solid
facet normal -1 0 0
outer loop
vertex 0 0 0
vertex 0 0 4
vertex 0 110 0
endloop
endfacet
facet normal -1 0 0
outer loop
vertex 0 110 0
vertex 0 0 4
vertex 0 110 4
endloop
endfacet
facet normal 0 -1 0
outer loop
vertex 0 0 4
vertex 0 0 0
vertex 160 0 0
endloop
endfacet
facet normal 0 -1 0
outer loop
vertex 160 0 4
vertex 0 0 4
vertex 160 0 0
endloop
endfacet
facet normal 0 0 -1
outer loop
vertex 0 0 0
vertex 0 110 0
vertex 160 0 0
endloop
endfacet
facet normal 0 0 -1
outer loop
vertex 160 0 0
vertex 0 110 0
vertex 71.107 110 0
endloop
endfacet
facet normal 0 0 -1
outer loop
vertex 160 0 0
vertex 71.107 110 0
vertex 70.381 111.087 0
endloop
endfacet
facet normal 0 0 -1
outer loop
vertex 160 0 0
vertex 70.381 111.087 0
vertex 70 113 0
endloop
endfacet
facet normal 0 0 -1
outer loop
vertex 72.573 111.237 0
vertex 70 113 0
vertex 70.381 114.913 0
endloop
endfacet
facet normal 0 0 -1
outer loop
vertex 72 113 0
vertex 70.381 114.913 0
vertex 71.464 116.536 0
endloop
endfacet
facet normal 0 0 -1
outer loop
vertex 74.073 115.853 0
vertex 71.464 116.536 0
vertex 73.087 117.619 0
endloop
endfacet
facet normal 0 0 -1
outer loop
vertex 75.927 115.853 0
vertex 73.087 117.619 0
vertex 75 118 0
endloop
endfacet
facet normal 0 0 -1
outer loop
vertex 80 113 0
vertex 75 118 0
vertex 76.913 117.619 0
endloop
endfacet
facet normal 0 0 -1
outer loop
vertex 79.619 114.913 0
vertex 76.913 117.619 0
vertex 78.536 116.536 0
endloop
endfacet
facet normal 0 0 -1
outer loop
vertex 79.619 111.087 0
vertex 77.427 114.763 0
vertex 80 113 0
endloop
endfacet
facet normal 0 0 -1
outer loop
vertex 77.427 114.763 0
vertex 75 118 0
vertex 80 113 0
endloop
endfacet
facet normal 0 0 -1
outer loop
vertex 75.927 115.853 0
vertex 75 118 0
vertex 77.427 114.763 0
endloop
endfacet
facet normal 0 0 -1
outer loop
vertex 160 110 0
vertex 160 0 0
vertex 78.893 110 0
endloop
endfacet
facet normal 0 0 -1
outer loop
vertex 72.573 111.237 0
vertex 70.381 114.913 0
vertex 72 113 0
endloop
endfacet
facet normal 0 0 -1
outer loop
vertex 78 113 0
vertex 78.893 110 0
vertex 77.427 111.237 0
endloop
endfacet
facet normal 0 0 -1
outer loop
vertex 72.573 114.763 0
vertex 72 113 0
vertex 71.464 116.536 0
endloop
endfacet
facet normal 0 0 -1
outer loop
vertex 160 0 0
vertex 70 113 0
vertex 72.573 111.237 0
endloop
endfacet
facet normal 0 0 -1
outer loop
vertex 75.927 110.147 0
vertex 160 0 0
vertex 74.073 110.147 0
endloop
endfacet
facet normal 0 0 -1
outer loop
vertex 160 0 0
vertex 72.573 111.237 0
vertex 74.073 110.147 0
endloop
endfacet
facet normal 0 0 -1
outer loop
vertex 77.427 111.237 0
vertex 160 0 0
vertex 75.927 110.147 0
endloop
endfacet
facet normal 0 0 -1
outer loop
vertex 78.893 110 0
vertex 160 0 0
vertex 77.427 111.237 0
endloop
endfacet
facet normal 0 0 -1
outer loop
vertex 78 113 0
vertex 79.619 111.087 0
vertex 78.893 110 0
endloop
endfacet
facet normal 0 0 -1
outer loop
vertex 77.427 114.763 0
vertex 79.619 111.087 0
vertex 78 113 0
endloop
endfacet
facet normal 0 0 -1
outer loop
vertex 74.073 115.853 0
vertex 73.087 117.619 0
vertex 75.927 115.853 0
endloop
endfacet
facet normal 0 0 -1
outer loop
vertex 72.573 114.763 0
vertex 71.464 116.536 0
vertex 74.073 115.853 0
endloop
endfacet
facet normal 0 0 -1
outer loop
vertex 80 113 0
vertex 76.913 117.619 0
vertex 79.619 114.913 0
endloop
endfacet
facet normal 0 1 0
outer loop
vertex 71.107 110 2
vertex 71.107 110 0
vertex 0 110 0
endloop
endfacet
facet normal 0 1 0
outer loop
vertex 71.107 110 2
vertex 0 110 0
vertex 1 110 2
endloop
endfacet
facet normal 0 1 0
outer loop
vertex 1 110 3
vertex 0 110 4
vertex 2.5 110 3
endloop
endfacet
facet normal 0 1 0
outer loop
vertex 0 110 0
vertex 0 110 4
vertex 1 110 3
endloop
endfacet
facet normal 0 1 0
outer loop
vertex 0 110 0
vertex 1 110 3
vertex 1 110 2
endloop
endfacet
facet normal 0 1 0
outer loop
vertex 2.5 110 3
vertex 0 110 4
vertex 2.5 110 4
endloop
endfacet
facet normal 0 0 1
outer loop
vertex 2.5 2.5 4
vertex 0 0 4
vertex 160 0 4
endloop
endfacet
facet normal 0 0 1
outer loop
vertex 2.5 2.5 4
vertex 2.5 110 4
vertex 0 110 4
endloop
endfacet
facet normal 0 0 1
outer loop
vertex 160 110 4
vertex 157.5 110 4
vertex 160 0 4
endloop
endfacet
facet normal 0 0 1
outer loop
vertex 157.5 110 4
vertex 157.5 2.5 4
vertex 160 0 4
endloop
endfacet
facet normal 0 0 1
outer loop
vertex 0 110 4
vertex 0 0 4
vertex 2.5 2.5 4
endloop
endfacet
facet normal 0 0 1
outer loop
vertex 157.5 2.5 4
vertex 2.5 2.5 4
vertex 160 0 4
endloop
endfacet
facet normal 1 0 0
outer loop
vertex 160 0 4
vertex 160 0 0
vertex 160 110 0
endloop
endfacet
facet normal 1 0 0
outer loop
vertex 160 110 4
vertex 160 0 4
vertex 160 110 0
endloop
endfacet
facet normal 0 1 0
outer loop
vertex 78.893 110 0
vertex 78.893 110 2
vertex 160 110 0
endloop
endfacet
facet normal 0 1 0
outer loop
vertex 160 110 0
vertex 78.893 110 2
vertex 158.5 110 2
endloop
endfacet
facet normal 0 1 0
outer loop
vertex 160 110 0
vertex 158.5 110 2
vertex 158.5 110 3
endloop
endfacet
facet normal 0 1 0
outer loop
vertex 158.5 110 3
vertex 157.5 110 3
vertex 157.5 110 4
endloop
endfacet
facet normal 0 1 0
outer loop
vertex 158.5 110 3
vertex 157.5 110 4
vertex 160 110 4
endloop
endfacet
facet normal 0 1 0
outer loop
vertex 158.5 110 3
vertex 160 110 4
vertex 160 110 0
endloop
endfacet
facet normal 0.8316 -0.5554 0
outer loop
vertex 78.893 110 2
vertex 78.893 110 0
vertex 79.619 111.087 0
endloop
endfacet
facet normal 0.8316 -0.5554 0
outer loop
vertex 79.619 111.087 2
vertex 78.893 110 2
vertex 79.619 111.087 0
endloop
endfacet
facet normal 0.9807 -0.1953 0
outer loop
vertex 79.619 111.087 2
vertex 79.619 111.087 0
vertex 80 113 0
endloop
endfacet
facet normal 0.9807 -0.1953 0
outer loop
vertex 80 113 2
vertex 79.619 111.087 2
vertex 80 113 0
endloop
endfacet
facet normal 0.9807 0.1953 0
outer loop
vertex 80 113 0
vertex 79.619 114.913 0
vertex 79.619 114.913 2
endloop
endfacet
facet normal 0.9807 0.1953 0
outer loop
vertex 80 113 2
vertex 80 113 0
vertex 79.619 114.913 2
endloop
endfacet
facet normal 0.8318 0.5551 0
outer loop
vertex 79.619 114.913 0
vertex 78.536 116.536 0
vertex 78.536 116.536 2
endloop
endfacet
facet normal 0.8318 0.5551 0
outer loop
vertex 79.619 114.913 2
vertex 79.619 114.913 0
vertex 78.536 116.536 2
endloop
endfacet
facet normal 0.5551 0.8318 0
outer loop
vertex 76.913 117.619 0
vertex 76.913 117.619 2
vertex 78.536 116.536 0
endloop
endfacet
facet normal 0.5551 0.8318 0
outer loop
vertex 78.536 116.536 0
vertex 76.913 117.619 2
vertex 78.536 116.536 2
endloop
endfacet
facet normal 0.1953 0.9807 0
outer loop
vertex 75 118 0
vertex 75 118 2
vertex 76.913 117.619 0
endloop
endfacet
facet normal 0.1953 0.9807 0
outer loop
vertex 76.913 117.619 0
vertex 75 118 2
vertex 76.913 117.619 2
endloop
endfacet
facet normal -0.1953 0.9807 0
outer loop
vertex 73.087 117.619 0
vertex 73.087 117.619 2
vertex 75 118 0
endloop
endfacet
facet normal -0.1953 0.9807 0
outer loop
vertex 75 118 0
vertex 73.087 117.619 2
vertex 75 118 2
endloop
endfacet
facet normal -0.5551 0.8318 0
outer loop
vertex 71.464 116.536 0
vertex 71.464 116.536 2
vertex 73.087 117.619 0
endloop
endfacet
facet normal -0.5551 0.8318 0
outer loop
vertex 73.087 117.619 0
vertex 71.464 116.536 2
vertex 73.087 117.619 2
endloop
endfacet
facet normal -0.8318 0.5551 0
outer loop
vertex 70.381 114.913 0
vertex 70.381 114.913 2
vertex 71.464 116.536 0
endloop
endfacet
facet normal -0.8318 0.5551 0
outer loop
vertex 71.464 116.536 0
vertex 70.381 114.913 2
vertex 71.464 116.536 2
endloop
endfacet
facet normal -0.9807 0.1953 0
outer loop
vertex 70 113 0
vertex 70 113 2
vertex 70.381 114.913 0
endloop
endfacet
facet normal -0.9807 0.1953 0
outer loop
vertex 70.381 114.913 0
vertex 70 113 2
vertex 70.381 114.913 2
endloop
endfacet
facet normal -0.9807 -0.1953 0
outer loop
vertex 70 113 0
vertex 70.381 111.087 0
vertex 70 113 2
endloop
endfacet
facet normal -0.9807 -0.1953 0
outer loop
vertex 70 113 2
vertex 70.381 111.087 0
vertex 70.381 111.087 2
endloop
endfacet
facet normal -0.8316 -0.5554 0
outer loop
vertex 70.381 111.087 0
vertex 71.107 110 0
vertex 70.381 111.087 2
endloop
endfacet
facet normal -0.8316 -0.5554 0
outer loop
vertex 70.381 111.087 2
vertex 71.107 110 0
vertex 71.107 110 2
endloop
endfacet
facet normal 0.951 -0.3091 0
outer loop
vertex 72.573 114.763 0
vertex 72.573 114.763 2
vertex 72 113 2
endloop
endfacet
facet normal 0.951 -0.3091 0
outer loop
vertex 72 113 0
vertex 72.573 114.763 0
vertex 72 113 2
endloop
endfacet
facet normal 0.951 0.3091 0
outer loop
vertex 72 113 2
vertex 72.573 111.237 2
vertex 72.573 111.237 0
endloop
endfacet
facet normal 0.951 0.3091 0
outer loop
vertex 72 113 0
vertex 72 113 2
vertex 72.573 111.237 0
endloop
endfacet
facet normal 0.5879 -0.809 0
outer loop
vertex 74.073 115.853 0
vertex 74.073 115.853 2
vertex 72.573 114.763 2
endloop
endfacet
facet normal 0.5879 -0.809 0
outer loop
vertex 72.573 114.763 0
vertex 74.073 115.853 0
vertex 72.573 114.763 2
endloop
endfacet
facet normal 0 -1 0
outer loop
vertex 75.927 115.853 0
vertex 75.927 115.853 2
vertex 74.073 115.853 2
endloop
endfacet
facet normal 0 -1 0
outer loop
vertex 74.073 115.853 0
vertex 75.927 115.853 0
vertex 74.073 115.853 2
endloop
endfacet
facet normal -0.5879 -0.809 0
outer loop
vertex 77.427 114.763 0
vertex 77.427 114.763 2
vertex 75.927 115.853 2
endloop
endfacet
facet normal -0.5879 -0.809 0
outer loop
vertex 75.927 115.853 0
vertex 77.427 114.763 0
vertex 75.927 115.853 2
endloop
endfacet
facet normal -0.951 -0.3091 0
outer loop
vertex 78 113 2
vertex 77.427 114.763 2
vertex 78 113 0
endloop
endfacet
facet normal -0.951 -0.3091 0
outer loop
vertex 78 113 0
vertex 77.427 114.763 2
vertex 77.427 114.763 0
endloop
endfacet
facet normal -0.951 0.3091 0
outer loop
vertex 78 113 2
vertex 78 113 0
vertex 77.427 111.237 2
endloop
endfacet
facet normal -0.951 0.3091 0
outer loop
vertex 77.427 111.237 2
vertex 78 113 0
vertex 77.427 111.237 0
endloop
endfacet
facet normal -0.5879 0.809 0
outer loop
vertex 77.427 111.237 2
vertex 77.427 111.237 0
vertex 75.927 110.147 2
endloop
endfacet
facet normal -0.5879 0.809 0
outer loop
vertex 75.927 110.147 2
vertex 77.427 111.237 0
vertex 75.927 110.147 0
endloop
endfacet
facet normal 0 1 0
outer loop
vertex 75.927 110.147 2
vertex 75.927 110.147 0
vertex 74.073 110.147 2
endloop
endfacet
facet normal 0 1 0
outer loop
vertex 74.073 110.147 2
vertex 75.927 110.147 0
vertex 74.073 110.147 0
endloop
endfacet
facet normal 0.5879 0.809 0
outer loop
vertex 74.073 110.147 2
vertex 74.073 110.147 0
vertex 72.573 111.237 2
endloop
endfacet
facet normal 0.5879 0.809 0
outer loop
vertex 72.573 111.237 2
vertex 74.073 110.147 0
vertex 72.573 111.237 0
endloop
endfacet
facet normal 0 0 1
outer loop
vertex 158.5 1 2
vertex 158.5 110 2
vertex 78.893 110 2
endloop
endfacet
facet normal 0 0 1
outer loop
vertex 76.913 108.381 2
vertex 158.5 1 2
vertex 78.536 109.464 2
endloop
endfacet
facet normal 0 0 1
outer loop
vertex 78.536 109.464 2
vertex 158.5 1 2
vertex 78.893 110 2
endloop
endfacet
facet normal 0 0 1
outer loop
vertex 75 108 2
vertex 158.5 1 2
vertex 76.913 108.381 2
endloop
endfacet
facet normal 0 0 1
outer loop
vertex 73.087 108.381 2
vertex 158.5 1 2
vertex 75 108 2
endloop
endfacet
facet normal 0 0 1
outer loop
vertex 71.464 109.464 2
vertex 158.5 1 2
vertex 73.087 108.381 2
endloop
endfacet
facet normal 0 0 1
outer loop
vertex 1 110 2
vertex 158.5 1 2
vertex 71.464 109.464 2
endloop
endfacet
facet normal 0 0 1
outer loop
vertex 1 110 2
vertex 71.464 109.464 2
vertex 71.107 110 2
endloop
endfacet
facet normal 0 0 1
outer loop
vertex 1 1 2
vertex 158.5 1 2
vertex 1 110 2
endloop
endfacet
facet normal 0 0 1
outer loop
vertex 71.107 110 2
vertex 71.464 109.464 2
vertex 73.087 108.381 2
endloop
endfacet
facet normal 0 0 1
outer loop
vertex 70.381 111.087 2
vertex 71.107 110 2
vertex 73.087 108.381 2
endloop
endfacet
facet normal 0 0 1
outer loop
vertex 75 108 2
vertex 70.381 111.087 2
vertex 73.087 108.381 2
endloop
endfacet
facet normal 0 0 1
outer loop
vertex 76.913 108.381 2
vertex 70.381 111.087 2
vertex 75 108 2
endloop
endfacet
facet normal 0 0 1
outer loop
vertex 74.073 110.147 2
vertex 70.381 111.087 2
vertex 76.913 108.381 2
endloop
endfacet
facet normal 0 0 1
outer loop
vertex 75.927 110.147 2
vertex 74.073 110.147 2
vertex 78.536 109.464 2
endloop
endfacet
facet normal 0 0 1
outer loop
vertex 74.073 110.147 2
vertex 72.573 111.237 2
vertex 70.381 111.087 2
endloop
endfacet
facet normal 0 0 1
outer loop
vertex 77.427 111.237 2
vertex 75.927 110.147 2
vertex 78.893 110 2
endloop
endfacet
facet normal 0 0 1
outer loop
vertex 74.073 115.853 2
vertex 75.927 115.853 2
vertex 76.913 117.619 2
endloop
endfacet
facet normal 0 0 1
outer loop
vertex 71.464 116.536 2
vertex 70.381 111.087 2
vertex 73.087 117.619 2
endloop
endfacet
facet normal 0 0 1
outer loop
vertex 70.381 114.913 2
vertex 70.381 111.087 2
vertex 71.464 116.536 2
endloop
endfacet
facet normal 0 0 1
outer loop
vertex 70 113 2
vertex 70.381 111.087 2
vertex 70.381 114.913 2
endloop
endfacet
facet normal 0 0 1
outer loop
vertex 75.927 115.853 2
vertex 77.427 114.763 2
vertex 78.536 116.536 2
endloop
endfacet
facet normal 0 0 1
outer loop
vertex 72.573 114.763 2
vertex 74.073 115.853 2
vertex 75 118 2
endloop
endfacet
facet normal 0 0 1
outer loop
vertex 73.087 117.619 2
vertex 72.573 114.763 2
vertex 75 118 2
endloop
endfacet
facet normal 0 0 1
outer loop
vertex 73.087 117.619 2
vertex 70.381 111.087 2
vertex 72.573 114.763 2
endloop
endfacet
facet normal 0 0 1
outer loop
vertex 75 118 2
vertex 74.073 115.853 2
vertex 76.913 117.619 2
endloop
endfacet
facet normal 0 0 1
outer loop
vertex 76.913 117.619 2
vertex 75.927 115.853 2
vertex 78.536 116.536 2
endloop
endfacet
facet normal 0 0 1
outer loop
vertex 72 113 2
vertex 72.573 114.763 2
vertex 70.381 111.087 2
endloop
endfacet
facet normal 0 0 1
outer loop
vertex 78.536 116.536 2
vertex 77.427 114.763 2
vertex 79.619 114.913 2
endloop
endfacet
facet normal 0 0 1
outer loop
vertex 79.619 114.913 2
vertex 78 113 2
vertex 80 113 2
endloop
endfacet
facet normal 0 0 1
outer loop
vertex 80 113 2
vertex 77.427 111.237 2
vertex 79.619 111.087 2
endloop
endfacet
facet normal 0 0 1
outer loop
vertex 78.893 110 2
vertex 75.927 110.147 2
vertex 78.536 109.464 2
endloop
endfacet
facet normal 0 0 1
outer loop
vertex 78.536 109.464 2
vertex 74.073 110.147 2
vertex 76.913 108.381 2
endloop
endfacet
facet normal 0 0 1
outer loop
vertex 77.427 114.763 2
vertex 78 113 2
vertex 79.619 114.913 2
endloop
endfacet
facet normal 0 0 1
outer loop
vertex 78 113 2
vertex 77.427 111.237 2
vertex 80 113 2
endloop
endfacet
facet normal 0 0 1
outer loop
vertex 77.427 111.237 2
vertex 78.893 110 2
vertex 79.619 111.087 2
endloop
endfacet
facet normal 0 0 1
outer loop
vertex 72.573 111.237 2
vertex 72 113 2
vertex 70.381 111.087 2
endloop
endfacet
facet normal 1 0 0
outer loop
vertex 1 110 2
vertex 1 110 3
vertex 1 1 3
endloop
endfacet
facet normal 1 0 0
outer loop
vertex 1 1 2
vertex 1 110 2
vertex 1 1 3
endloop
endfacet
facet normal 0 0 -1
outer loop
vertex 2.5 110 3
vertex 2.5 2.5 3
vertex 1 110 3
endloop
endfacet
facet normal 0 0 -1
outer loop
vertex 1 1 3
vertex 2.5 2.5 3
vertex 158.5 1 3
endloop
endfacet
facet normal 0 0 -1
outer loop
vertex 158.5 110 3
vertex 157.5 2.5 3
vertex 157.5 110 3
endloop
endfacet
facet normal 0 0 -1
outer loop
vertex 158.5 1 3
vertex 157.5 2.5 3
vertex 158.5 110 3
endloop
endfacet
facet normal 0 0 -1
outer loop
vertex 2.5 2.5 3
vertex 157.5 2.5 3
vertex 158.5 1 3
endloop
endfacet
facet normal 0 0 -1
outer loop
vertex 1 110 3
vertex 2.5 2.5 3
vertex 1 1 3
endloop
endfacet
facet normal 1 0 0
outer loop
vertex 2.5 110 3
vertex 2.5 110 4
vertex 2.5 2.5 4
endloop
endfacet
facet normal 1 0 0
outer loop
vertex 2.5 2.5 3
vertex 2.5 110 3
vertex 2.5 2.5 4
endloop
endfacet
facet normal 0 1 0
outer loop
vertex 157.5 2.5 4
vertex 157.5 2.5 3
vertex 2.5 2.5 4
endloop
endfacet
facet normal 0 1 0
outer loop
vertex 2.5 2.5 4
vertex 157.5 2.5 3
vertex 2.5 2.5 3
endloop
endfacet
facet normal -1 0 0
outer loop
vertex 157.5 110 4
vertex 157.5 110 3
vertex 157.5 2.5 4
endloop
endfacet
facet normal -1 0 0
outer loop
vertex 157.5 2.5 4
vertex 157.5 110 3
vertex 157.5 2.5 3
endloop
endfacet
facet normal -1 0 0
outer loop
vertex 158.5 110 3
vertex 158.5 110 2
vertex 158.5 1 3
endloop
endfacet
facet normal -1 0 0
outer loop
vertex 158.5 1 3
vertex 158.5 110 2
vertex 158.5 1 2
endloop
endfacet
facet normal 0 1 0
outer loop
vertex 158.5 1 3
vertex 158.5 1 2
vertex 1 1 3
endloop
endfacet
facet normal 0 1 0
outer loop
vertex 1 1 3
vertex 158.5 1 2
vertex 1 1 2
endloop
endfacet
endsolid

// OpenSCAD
// Fire sign holder
// Back plate
difference () {
	cube(size=[160, 110, 4], centre=true);
		translate ([2.5, 2.5, 2])
		cube(size=[155, 130, 10], centre=true);
		translate ([1, 1, 2])
		cube(size=[157.5, 150, 1], centre=true);
}
// Screw hole
difference () {
	translate([75, 113, 0])
	cylinder(h = 2, r = 5);
			translate([75, 113, -5])
			cylinder(h = 20, r = 3);
}
